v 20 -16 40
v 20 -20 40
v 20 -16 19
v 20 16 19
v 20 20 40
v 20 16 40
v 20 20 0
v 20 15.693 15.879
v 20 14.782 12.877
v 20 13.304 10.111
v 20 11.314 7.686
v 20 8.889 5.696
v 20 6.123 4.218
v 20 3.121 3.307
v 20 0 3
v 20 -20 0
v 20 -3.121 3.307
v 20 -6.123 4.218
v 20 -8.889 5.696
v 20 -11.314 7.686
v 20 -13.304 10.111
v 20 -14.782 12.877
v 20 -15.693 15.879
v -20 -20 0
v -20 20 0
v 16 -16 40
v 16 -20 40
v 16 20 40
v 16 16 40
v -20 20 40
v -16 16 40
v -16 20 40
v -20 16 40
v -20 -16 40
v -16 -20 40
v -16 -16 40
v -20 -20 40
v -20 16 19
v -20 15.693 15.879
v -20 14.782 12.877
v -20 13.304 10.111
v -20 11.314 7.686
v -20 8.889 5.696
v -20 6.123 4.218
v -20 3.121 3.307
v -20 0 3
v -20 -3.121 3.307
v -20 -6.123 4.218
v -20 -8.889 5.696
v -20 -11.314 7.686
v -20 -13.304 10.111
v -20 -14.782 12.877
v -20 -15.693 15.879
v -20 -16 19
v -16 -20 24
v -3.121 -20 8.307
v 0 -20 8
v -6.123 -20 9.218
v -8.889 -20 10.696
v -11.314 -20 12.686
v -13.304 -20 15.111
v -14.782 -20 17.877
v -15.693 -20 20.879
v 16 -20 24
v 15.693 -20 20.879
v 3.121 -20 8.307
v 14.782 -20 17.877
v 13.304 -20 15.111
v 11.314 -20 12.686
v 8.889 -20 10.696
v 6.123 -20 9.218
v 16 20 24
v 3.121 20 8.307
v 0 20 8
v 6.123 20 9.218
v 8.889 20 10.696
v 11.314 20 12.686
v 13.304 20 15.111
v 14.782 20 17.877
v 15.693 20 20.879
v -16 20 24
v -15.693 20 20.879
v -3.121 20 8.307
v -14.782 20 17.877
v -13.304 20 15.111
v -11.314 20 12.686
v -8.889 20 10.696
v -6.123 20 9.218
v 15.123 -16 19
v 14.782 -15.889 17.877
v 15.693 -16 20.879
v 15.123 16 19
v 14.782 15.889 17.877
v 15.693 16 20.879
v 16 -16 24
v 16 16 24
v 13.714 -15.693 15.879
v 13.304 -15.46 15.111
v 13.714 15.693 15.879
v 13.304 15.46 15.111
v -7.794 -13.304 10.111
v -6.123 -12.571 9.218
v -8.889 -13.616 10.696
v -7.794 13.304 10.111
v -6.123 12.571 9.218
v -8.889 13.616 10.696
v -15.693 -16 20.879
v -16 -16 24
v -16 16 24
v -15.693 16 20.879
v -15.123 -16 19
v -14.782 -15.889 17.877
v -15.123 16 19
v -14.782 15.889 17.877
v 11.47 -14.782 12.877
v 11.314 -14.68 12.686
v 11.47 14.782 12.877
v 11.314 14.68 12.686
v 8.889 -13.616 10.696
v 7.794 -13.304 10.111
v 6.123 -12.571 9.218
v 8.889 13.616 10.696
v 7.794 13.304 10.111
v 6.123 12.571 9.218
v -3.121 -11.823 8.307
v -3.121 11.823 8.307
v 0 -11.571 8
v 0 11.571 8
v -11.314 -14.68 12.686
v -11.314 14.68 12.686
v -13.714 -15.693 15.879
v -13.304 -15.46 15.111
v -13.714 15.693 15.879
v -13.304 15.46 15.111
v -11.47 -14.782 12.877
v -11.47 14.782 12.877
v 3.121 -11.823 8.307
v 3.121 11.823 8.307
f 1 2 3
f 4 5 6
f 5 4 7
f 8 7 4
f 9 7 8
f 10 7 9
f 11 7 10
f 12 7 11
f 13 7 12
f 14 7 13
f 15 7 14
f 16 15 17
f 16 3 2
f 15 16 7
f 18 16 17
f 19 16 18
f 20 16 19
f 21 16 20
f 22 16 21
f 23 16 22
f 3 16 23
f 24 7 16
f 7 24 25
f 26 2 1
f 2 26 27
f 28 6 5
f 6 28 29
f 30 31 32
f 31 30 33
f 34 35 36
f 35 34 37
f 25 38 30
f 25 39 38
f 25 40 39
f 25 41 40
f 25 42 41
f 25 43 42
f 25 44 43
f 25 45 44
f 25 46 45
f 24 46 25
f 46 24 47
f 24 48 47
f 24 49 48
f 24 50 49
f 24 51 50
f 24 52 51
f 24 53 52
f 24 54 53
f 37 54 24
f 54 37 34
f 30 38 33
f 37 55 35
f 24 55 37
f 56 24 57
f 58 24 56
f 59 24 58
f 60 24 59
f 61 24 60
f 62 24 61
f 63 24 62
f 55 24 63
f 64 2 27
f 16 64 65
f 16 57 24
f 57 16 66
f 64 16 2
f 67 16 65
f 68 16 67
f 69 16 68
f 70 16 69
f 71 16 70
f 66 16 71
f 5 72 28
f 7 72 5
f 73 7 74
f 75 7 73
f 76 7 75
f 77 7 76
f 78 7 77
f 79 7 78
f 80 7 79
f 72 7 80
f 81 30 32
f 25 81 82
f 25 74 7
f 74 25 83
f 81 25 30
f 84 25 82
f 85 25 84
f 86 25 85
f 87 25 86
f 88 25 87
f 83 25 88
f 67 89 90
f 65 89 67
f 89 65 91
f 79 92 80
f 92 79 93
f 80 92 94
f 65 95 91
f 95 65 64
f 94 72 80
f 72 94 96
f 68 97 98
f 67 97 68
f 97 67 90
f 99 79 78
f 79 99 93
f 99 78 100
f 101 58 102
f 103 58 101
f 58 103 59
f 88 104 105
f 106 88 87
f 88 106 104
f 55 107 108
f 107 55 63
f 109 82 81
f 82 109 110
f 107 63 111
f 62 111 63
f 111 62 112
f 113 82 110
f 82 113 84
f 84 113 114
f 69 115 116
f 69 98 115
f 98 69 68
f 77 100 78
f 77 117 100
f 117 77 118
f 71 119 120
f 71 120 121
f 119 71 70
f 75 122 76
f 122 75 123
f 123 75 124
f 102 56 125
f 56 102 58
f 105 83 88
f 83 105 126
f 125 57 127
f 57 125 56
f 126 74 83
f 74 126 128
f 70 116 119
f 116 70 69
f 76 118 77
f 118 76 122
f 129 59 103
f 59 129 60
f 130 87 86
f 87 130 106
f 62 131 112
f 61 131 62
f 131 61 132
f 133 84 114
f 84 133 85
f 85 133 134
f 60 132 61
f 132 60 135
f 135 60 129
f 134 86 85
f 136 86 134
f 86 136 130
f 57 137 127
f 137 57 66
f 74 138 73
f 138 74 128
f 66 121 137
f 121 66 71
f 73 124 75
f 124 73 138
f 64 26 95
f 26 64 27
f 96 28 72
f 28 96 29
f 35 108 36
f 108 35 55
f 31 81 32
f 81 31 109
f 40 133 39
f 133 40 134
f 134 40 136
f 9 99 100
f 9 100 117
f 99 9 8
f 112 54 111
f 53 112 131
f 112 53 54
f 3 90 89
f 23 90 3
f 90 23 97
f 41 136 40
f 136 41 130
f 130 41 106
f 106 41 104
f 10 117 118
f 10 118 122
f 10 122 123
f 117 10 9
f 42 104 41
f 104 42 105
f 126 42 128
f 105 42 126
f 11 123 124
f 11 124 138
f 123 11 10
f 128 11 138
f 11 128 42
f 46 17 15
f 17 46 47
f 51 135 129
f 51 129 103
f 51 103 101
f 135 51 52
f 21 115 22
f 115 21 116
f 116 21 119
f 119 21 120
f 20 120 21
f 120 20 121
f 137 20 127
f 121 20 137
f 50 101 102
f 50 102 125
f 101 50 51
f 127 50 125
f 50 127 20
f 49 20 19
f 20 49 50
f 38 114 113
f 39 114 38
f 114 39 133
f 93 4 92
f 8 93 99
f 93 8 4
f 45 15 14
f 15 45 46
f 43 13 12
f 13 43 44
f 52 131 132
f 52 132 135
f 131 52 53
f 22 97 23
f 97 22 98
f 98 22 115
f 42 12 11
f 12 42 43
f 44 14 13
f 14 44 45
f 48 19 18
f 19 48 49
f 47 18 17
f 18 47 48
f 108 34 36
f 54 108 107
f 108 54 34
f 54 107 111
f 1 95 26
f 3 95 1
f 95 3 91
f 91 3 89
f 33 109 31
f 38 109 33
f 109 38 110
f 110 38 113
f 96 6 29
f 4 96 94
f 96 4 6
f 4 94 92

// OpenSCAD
/*
    platfrom grid length
    upside down for better 3d printing
*/
include <train_tube_track.scad>;

translate([0,0,height+outer_height/2])
rotate([180,0,0])
platform(is_base=false, side_fix = -1);
